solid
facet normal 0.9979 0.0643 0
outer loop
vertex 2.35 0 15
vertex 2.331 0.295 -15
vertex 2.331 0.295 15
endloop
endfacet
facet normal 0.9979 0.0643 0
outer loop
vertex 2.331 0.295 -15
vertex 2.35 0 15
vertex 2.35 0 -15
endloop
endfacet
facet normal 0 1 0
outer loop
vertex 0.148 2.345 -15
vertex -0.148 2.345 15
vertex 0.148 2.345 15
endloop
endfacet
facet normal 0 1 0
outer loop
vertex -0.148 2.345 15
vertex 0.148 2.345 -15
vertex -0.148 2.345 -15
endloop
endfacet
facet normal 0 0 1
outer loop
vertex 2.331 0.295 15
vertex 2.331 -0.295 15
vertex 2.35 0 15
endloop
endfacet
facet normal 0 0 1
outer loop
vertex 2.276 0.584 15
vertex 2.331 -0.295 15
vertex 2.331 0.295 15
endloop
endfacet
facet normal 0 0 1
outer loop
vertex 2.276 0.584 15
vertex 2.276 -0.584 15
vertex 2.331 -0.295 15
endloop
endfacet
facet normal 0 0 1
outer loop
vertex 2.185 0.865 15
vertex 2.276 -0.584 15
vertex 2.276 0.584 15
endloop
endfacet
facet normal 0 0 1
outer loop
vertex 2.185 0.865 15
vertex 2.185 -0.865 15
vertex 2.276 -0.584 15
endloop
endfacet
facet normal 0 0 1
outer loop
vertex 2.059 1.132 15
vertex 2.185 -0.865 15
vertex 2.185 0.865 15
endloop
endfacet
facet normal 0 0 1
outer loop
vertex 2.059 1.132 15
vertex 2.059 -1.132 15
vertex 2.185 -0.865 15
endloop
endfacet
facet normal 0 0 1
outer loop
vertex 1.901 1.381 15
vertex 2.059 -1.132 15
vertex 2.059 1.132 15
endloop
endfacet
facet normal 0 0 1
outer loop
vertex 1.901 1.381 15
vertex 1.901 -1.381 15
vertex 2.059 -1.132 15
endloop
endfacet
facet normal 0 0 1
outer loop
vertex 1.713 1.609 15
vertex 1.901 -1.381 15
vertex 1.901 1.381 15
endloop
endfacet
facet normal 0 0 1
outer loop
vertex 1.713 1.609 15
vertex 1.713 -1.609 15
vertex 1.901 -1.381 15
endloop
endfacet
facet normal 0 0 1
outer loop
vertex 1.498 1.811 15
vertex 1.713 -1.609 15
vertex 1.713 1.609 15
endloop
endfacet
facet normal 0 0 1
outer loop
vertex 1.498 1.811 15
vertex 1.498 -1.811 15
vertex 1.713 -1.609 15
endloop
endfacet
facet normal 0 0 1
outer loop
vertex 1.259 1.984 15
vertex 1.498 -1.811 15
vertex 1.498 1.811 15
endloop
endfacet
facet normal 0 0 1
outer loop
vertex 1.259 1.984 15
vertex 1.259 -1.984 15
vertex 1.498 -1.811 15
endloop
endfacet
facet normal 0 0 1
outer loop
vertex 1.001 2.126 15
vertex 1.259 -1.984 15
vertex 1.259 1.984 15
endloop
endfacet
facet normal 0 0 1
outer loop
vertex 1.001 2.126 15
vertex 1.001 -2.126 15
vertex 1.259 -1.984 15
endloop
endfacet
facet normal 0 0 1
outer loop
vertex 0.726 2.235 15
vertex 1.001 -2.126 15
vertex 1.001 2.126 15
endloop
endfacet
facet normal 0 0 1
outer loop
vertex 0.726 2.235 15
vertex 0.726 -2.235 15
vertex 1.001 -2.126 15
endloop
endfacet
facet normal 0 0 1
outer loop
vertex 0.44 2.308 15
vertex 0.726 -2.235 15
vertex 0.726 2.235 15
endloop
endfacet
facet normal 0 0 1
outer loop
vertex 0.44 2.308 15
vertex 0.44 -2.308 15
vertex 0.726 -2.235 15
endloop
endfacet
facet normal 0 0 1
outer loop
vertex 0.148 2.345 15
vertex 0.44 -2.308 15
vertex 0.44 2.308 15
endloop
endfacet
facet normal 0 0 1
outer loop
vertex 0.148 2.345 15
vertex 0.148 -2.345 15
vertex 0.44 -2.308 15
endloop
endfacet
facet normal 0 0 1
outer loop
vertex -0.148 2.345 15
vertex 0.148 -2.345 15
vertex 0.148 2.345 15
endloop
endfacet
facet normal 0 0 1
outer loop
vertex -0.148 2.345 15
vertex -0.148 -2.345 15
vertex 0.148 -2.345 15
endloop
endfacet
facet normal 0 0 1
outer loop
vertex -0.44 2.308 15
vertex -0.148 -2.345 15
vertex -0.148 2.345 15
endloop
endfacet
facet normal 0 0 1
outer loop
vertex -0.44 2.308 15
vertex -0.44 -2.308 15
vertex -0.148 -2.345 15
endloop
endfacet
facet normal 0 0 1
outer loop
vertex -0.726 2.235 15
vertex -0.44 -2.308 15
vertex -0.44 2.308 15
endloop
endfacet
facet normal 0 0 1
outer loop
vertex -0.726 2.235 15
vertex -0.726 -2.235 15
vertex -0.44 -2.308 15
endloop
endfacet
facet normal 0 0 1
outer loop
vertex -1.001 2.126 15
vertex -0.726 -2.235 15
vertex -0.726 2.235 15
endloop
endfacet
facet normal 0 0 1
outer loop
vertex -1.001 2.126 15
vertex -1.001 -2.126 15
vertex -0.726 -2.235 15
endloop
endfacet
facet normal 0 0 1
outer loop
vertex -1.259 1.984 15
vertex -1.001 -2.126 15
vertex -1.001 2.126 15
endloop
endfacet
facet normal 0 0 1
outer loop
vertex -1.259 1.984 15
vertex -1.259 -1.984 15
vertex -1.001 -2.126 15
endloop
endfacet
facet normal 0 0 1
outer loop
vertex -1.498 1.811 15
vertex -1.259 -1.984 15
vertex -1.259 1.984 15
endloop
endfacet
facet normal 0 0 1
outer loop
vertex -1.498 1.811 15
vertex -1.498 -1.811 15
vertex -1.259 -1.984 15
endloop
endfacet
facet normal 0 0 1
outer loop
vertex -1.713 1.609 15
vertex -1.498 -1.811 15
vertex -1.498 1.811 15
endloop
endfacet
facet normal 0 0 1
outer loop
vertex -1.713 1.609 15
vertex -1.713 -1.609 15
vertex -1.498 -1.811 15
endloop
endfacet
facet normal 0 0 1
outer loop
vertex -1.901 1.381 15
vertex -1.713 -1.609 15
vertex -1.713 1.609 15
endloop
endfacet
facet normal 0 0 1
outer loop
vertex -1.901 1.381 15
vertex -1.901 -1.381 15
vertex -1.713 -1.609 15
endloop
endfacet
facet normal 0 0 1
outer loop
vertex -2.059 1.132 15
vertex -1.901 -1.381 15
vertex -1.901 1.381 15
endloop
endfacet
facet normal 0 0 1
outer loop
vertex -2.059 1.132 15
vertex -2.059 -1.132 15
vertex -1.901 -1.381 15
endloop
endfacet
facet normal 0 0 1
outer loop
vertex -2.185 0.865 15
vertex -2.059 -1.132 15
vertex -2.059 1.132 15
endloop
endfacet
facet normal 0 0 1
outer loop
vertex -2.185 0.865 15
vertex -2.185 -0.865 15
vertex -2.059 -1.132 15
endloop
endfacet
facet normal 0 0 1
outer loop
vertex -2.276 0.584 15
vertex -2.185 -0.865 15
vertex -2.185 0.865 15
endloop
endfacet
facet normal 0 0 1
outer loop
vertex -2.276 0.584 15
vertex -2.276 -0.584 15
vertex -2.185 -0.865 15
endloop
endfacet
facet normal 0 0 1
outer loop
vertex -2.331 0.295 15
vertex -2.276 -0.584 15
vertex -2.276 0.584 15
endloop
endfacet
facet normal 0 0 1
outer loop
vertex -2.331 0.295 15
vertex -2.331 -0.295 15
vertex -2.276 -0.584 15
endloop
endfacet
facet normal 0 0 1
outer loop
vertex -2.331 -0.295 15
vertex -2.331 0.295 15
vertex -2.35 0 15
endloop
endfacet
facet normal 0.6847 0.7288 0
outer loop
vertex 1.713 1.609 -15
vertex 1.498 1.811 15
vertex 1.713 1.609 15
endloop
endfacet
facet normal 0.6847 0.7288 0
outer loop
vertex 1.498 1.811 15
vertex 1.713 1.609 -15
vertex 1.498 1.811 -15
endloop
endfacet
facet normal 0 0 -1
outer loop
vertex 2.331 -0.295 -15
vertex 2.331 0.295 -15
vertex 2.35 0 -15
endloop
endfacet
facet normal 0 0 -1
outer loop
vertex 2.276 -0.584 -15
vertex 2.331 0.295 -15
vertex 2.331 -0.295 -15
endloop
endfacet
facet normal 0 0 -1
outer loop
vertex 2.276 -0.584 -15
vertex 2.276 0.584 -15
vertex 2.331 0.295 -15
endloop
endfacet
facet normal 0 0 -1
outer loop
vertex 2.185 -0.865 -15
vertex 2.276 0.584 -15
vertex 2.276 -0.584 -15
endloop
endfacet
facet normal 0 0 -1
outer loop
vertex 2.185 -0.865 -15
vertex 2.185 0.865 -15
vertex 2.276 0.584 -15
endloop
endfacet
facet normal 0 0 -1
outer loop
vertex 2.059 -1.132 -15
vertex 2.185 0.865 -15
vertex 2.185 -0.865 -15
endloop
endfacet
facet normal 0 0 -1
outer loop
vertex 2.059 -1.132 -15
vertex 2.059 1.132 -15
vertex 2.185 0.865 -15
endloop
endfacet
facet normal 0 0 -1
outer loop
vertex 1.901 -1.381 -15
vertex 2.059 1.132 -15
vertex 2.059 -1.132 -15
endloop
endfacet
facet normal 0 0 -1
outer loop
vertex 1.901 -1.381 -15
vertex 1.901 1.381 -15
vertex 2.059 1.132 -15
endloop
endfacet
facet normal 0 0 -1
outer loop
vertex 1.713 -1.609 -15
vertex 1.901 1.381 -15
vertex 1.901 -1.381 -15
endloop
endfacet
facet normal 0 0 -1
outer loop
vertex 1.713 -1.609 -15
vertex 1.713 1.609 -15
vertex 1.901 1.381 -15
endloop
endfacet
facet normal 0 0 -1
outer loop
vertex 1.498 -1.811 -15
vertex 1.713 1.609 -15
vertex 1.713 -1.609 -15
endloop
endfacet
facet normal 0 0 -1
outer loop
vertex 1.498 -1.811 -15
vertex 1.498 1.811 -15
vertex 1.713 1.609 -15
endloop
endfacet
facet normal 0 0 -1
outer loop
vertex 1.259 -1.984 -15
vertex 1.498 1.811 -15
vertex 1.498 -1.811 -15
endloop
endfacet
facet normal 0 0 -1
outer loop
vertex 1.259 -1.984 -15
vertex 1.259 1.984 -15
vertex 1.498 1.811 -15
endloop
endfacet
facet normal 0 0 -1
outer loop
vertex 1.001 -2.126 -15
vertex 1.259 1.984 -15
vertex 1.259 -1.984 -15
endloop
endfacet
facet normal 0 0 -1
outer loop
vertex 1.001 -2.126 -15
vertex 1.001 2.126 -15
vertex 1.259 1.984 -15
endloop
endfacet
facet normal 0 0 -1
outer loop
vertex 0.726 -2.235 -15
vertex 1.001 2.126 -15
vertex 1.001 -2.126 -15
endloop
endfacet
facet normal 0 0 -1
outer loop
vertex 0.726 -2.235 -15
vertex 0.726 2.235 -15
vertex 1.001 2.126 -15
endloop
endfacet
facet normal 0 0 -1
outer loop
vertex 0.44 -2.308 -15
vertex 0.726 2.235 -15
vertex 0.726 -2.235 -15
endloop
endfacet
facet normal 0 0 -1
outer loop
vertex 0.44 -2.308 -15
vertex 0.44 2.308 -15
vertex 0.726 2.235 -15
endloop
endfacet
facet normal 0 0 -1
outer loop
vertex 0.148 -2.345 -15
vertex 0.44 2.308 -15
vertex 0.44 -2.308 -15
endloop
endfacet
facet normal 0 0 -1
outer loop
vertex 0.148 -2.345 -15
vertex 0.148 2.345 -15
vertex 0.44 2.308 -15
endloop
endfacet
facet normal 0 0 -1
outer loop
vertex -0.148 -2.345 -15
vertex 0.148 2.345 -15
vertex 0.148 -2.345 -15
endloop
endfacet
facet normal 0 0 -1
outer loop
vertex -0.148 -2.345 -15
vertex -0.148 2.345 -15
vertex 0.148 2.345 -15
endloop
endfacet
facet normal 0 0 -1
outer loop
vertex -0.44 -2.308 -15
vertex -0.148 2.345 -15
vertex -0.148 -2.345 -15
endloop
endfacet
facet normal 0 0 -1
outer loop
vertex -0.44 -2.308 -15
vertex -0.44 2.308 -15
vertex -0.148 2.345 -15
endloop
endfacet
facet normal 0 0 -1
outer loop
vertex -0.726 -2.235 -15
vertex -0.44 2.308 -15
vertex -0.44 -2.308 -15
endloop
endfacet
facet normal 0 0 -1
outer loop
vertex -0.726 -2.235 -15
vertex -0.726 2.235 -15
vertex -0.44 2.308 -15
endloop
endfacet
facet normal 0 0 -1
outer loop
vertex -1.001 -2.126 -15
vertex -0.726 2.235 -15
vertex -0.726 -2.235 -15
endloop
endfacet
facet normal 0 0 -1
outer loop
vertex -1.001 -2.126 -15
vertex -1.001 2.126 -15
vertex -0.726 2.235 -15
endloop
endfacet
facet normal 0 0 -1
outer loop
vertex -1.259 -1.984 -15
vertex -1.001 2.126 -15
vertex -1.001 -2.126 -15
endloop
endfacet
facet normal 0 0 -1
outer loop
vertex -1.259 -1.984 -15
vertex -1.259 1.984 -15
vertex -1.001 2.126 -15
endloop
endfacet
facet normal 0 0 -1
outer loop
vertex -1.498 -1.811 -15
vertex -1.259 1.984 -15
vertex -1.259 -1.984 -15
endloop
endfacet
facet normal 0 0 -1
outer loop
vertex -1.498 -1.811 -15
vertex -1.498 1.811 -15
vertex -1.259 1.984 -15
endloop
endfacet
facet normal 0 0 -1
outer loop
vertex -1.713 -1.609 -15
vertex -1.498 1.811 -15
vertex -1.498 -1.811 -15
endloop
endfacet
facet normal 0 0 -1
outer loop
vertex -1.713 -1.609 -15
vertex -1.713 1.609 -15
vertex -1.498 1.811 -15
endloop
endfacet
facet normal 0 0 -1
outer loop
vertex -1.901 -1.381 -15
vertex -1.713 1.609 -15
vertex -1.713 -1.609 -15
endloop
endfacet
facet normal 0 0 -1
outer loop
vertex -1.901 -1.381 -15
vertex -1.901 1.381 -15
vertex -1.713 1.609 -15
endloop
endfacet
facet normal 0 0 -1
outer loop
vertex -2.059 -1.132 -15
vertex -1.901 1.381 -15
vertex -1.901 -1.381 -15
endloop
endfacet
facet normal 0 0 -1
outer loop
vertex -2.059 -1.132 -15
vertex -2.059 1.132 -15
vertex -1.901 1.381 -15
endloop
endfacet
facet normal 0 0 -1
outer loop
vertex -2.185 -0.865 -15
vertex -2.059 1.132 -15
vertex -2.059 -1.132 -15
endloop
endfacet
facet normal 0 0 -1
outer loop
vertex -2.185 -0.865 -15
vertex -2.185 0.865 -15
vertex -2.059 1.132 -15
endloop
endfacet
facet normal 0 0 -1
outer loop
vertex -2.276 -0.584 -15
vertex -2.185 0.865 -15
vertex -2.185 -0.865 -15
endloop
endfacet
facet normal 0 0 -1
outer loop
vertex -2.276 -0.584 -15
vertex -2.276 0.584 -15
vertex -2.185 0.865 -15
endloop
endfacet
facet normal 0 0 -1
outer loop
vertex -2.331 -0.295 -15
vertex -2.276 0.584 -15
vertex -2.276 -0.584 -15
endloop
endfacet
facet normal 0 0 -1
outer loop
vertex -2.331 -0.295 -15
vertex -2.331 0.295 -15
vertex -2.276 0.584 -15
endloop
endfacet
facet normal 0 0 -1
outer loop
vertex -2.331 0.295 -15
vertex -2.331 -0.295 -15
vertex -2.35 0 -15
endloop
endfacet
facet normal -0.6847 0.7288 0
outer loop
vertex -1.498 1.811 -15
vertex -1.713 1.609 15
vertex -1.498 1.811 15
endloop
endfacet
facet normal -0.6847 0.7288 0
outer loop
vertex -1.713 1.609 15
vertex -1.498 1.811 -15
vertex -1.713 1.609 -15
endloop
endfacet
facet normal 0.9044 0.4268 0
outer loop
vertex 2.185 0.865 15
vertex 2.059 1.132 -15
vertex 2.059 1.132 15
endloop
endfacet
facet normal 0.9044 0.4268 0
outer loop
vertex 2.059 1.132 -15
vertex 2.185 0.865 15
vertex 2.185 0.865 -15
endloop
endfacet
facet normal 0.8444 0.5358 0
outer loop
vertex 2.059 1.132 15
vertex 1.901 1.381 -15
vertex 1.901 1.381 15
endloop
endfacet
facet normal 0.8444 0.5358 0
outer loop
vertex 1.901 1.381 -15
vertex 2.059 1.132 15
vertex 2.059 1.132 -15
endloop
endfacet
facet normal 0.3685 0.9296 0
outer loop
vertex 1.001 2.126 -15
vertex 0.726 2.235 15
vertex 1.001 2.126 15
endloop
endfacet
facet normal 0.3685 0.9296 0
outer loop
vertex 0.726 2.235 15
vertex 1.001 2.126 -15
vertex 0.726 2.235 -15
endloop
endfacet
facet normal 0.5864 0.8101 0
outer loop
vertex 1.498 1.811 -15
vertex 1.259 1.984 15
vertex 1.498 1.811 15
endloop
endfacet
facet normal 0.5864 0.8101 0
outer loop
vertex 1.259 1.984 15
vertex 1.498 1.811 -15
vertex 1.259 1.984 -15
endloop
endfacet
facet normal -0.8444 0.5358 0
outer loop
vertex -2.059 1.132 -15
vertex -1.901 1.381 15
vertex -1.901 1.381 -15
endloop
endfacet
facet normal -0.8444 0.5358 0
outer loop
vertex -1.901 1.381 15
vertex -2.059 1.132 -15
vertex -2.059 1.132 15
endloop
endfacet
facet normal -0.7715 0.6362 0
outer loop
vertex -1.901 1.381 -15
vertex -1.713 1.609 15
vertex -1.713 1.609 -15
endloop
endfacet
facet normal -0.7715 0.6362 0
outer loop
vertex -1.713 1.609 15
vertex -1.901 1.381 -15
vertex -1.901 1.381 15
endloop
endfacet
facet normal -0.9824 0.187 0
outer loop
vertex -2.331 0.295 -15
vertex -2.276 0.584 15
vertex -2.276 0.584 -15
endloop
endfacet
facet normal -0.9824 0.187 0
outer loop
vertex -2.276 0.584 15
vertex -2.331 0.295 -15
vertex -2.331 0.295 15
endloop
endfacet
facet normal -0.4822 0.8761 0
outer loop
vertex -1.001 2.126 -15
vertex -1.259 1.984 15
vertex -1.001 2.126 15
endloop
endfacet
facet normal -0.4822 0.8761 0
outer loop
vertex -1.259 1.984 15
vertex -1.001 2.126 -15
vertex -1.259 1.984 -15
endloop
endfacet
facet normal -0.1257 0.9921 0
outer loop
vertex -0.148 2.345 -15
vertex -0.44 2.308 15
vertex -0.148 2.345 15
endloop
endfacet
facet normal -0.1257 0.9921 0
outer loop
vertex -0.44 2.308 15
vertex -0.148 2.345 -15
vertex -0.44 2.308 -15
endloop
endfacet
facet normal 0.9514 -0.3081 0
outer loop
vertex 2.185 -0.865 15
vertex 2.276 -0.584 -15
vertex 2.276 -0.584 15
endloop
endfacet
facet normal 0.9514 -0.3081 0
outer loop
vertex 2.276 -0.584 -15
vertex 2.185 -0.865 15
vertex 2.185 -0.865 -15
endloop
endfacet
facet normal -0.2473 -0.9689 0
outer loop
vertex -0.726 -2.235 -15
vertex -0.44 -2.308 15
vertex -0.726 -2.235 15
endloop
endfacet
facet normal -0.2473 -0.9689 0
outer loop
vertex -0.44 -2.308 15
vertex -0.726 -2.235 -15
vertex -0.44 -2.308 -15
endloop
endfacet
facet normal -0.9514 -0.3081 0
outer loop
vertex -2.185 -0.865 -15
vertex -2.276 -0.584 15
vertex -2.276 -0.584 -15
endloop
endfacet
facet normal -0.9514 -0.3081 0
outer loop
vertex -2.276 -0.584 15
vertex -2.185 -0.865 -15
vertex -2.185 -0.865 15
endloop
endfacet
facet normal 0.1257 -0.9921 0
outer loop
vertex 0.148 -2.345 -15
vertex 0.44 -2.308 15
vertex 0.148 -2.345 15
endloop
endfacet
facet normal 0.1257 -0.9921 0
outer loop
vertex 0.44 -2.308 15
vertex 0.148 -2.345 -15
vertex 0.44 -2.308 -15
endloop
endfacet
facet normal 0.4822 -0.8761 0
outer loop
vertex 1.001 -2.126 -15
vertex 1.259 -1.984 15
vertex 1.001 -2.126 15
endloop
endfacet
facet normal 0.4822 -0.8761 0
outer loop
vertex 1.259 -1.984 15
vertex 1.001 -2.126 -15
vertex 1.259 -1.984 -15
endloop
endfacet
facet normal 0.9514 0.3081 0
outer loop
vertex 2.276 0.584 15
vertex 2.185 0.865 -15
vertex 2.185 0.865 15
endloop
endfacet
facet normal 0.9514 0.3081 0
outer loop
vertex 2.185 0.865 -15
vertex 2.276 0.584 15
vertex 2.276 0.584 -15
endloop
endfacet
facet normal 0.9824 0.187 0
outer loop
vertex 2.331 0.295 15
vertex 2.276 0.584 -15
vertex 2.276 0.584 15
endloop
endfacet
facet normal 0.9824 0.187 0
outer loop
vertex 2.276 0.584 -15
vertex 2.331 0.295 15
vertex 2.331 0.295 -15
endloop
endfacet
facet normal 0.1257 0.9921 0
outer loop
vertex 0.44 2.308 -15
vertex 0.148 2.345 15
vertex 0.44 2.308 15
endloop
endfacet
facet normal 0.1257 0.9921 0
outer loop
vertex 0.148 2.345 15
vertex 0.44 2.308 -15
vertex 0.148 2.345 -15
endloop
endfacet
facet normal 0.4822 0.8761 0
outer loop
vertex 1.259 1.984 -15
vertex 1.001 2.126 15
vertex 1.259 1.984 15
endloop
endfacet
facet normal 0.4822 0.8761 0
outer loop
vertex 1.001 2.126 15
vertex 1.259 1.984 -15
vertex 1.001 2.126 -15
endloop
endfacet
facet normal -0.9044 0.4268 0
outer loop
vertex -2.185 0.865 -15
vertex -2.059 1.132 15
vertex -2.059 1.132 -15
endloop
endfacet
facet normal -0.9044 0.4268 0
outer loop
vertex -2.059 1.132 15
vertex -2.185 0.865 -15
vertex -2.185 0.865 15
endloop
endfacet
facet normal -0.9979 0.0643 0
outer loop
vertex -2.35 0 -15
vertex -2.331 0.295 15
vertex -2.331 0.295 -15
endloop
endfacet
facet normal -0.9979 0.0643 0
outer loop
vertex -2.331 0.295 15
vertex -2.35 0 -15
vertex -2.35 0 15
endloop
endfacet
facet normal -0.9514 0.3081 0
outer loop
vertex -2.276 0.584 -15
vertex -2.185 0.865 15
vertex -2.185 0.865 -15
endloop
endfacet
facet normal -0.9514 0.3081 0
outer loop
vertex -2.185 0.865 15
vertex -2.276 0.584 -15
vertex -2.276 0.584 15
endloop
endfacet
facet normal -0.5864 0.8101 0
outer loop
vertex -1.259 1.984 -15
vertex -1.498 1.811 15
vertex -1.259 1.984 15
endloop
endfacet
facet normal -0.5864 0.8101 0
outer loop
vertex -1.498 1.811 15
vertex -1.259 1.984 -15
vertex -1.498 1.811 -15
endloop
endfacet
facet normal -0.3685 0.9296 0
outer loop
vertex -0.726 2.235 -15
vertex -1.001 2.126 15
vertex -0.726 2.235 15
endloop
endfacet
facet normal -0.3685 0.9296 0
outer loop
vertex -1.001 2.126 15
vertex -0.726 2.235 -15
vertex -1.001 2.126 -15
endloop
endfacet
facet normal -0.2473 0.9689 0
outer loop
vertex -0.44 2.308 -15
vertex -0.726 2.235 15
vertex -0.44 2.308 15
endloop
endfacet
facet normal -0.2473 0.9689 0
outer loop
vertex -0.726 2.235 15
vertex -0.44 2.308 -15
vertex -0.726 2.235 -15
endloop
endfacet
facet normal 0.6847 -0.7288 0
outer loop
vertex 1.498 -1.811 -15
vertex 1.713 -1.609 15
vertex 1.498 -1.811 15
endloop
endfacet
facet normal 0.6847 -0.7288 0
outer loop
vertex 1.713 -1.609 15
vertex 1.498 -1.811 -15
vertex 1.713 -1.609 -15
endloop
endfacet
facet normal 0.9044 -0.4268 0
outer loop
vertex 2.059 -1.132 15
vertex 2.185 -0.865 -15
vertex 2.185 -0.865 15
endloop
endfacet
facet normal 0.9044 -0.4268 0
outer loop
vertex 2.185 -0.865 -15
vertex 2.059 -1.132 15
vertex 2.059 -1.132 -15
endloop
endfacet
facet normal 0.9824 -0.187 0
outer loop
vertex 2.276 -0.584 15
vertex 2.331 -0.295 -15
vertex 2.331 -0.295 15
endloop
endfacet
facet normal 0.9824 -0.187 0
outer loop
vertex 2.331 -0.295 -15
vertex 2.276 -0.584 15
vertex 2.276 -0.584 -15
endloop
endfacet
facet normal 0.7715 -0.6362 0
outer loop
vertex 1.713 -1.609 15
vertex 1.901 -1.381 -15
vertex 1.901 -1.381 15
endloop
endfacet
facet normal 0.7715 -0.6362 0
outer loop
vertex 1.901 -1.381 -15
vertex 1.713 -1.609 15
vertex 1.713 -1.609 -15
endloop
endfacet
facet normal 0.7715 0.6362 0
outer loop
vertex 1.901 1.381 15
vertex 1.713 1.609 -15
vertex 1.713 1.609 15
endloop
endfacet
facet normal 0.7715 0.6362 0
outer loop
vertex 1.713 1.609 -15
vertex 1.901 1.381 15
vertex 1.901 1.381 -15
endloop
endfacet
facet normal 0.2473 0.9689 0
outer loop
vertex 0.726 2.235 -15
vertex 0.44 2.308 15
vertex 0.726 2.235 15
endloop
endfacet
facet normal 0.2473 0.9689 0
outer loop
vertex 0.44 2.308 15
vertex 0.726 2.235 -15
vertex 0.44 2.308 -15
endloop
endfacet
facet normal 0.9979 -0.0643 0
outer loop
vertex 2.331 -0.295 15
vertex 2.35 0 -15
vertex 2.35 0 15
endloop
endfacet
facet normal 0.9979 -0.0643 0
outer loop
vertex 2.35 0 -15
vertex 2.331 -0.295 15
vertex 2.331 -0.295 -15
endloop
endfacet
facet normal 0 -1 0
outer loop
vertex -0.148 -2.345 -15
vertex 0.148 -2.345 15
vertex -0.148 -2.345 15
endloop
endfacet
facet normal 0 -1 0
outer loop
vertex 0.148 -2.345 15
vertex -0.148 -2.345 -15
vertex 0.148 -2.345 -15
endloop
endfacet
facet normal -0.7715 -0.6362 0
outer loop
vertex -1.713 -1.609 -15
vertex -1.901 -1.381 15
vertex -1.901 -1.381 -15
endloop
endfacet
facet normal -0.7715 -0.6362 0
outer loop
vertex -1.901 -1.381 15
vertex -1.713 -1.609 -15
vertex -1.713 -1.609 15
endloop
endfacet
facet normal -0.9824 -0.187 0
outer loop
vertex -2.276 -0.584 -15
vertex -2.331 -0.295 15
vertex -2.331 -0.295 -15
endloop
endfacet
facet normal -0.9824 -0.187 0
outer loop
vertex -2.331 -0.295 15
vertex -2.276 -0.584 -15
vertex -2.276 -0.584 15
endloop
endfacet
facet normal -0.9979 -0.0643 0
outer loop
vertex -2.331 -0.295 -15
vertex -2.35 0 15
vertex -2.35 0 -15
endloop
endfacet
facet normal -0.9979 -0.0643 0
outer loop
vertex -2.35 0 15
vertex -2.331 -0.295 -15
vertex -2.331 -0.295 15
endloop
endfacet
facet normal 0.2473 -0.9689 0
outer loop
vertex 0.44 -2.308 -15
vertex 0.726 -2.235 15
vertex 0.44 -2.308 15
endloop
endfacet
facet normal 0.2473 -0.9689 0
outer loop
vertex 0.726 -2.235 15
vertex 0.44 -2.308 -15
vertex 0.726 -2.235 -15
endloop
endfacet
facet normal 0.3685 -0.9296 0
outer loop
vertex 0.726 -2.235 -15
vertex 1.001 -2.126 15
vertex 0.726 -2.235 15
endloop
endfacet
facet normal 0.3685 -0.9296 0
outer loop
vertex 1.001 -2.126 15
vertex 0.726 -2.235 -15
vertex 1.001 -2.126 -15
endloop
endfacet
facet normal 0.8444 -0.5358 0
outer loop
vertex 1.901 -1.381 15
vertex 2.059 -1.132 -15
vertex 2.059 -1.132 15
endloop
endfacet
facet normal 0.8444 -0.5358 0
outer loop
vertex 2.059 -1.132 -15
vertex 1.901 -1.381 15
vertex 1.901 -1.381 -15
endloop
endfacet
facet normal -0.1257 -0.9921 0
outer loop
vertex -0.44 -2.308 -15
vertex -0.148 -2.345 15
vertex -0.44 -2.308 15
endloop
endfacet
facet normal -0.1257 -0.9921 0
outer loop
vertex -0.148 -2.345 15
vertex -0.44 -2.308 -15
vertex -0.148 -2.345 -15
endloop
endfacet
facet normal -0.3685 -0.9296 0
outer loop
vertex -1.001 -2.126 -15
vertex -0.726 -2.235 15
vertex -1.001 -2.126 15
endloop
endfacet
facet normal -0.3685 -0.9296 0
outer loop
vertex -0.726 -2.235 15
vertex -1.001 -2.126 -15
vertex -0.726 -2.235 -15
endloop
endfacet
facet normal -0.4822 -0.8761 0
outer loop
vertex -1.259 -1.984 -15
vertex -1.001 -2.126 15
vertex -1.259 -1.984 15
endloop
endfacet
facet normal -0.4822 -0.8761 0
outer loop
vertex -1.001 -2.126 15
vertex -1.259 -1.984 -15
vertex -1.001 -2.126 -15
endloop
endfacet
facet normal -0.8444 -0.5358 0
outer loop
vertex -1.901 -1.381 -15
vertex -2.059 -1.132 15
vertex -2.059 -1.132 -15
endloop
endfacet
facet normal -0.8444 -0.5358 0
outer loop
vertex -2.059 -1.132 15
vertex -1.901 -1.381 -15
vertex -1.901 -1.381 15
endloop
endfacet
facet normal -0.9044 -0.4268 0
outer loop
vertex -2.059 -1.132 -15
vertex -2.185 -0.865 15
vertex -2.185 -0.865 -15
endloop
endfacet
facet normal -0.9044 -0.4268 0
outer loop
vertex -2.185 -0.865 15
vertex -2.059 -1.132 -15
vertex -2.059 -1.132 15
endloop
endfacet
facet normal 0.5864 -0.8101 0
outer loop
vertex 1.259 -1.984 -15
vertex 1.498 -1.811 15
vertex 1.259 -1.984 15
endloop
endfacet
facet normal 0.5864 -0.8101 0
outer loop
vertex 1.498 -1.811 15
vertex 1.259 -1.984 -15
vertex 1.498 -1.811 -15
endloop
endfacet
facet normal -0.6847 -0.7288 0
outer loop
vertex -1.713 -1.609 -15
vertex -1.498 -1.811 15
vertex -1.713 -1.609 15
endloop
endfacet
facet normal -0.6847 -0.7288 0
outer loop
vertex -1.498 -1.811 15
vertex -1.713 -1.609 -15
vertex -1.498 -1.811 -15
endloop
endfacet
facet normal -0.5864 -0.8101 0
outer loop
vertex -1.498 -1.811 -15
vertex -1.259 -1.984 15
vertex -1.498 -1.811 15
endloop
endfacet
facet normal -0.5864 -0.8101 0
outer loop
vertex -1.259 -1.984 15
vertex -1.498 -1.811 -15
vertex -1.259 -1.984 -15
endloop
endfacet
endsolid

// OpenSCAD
$fn = 50;


difference() {
	union() {
		translate(v = [0, 0, -15.0000000000]) {
			cylinder(h = 30, r = 2.3500000000);
		}
	}
	union() {
		translate(v = [0, 0, -100.0000000000]) {
			cylinder(h = 200, r = 0);
		}
	}
}
